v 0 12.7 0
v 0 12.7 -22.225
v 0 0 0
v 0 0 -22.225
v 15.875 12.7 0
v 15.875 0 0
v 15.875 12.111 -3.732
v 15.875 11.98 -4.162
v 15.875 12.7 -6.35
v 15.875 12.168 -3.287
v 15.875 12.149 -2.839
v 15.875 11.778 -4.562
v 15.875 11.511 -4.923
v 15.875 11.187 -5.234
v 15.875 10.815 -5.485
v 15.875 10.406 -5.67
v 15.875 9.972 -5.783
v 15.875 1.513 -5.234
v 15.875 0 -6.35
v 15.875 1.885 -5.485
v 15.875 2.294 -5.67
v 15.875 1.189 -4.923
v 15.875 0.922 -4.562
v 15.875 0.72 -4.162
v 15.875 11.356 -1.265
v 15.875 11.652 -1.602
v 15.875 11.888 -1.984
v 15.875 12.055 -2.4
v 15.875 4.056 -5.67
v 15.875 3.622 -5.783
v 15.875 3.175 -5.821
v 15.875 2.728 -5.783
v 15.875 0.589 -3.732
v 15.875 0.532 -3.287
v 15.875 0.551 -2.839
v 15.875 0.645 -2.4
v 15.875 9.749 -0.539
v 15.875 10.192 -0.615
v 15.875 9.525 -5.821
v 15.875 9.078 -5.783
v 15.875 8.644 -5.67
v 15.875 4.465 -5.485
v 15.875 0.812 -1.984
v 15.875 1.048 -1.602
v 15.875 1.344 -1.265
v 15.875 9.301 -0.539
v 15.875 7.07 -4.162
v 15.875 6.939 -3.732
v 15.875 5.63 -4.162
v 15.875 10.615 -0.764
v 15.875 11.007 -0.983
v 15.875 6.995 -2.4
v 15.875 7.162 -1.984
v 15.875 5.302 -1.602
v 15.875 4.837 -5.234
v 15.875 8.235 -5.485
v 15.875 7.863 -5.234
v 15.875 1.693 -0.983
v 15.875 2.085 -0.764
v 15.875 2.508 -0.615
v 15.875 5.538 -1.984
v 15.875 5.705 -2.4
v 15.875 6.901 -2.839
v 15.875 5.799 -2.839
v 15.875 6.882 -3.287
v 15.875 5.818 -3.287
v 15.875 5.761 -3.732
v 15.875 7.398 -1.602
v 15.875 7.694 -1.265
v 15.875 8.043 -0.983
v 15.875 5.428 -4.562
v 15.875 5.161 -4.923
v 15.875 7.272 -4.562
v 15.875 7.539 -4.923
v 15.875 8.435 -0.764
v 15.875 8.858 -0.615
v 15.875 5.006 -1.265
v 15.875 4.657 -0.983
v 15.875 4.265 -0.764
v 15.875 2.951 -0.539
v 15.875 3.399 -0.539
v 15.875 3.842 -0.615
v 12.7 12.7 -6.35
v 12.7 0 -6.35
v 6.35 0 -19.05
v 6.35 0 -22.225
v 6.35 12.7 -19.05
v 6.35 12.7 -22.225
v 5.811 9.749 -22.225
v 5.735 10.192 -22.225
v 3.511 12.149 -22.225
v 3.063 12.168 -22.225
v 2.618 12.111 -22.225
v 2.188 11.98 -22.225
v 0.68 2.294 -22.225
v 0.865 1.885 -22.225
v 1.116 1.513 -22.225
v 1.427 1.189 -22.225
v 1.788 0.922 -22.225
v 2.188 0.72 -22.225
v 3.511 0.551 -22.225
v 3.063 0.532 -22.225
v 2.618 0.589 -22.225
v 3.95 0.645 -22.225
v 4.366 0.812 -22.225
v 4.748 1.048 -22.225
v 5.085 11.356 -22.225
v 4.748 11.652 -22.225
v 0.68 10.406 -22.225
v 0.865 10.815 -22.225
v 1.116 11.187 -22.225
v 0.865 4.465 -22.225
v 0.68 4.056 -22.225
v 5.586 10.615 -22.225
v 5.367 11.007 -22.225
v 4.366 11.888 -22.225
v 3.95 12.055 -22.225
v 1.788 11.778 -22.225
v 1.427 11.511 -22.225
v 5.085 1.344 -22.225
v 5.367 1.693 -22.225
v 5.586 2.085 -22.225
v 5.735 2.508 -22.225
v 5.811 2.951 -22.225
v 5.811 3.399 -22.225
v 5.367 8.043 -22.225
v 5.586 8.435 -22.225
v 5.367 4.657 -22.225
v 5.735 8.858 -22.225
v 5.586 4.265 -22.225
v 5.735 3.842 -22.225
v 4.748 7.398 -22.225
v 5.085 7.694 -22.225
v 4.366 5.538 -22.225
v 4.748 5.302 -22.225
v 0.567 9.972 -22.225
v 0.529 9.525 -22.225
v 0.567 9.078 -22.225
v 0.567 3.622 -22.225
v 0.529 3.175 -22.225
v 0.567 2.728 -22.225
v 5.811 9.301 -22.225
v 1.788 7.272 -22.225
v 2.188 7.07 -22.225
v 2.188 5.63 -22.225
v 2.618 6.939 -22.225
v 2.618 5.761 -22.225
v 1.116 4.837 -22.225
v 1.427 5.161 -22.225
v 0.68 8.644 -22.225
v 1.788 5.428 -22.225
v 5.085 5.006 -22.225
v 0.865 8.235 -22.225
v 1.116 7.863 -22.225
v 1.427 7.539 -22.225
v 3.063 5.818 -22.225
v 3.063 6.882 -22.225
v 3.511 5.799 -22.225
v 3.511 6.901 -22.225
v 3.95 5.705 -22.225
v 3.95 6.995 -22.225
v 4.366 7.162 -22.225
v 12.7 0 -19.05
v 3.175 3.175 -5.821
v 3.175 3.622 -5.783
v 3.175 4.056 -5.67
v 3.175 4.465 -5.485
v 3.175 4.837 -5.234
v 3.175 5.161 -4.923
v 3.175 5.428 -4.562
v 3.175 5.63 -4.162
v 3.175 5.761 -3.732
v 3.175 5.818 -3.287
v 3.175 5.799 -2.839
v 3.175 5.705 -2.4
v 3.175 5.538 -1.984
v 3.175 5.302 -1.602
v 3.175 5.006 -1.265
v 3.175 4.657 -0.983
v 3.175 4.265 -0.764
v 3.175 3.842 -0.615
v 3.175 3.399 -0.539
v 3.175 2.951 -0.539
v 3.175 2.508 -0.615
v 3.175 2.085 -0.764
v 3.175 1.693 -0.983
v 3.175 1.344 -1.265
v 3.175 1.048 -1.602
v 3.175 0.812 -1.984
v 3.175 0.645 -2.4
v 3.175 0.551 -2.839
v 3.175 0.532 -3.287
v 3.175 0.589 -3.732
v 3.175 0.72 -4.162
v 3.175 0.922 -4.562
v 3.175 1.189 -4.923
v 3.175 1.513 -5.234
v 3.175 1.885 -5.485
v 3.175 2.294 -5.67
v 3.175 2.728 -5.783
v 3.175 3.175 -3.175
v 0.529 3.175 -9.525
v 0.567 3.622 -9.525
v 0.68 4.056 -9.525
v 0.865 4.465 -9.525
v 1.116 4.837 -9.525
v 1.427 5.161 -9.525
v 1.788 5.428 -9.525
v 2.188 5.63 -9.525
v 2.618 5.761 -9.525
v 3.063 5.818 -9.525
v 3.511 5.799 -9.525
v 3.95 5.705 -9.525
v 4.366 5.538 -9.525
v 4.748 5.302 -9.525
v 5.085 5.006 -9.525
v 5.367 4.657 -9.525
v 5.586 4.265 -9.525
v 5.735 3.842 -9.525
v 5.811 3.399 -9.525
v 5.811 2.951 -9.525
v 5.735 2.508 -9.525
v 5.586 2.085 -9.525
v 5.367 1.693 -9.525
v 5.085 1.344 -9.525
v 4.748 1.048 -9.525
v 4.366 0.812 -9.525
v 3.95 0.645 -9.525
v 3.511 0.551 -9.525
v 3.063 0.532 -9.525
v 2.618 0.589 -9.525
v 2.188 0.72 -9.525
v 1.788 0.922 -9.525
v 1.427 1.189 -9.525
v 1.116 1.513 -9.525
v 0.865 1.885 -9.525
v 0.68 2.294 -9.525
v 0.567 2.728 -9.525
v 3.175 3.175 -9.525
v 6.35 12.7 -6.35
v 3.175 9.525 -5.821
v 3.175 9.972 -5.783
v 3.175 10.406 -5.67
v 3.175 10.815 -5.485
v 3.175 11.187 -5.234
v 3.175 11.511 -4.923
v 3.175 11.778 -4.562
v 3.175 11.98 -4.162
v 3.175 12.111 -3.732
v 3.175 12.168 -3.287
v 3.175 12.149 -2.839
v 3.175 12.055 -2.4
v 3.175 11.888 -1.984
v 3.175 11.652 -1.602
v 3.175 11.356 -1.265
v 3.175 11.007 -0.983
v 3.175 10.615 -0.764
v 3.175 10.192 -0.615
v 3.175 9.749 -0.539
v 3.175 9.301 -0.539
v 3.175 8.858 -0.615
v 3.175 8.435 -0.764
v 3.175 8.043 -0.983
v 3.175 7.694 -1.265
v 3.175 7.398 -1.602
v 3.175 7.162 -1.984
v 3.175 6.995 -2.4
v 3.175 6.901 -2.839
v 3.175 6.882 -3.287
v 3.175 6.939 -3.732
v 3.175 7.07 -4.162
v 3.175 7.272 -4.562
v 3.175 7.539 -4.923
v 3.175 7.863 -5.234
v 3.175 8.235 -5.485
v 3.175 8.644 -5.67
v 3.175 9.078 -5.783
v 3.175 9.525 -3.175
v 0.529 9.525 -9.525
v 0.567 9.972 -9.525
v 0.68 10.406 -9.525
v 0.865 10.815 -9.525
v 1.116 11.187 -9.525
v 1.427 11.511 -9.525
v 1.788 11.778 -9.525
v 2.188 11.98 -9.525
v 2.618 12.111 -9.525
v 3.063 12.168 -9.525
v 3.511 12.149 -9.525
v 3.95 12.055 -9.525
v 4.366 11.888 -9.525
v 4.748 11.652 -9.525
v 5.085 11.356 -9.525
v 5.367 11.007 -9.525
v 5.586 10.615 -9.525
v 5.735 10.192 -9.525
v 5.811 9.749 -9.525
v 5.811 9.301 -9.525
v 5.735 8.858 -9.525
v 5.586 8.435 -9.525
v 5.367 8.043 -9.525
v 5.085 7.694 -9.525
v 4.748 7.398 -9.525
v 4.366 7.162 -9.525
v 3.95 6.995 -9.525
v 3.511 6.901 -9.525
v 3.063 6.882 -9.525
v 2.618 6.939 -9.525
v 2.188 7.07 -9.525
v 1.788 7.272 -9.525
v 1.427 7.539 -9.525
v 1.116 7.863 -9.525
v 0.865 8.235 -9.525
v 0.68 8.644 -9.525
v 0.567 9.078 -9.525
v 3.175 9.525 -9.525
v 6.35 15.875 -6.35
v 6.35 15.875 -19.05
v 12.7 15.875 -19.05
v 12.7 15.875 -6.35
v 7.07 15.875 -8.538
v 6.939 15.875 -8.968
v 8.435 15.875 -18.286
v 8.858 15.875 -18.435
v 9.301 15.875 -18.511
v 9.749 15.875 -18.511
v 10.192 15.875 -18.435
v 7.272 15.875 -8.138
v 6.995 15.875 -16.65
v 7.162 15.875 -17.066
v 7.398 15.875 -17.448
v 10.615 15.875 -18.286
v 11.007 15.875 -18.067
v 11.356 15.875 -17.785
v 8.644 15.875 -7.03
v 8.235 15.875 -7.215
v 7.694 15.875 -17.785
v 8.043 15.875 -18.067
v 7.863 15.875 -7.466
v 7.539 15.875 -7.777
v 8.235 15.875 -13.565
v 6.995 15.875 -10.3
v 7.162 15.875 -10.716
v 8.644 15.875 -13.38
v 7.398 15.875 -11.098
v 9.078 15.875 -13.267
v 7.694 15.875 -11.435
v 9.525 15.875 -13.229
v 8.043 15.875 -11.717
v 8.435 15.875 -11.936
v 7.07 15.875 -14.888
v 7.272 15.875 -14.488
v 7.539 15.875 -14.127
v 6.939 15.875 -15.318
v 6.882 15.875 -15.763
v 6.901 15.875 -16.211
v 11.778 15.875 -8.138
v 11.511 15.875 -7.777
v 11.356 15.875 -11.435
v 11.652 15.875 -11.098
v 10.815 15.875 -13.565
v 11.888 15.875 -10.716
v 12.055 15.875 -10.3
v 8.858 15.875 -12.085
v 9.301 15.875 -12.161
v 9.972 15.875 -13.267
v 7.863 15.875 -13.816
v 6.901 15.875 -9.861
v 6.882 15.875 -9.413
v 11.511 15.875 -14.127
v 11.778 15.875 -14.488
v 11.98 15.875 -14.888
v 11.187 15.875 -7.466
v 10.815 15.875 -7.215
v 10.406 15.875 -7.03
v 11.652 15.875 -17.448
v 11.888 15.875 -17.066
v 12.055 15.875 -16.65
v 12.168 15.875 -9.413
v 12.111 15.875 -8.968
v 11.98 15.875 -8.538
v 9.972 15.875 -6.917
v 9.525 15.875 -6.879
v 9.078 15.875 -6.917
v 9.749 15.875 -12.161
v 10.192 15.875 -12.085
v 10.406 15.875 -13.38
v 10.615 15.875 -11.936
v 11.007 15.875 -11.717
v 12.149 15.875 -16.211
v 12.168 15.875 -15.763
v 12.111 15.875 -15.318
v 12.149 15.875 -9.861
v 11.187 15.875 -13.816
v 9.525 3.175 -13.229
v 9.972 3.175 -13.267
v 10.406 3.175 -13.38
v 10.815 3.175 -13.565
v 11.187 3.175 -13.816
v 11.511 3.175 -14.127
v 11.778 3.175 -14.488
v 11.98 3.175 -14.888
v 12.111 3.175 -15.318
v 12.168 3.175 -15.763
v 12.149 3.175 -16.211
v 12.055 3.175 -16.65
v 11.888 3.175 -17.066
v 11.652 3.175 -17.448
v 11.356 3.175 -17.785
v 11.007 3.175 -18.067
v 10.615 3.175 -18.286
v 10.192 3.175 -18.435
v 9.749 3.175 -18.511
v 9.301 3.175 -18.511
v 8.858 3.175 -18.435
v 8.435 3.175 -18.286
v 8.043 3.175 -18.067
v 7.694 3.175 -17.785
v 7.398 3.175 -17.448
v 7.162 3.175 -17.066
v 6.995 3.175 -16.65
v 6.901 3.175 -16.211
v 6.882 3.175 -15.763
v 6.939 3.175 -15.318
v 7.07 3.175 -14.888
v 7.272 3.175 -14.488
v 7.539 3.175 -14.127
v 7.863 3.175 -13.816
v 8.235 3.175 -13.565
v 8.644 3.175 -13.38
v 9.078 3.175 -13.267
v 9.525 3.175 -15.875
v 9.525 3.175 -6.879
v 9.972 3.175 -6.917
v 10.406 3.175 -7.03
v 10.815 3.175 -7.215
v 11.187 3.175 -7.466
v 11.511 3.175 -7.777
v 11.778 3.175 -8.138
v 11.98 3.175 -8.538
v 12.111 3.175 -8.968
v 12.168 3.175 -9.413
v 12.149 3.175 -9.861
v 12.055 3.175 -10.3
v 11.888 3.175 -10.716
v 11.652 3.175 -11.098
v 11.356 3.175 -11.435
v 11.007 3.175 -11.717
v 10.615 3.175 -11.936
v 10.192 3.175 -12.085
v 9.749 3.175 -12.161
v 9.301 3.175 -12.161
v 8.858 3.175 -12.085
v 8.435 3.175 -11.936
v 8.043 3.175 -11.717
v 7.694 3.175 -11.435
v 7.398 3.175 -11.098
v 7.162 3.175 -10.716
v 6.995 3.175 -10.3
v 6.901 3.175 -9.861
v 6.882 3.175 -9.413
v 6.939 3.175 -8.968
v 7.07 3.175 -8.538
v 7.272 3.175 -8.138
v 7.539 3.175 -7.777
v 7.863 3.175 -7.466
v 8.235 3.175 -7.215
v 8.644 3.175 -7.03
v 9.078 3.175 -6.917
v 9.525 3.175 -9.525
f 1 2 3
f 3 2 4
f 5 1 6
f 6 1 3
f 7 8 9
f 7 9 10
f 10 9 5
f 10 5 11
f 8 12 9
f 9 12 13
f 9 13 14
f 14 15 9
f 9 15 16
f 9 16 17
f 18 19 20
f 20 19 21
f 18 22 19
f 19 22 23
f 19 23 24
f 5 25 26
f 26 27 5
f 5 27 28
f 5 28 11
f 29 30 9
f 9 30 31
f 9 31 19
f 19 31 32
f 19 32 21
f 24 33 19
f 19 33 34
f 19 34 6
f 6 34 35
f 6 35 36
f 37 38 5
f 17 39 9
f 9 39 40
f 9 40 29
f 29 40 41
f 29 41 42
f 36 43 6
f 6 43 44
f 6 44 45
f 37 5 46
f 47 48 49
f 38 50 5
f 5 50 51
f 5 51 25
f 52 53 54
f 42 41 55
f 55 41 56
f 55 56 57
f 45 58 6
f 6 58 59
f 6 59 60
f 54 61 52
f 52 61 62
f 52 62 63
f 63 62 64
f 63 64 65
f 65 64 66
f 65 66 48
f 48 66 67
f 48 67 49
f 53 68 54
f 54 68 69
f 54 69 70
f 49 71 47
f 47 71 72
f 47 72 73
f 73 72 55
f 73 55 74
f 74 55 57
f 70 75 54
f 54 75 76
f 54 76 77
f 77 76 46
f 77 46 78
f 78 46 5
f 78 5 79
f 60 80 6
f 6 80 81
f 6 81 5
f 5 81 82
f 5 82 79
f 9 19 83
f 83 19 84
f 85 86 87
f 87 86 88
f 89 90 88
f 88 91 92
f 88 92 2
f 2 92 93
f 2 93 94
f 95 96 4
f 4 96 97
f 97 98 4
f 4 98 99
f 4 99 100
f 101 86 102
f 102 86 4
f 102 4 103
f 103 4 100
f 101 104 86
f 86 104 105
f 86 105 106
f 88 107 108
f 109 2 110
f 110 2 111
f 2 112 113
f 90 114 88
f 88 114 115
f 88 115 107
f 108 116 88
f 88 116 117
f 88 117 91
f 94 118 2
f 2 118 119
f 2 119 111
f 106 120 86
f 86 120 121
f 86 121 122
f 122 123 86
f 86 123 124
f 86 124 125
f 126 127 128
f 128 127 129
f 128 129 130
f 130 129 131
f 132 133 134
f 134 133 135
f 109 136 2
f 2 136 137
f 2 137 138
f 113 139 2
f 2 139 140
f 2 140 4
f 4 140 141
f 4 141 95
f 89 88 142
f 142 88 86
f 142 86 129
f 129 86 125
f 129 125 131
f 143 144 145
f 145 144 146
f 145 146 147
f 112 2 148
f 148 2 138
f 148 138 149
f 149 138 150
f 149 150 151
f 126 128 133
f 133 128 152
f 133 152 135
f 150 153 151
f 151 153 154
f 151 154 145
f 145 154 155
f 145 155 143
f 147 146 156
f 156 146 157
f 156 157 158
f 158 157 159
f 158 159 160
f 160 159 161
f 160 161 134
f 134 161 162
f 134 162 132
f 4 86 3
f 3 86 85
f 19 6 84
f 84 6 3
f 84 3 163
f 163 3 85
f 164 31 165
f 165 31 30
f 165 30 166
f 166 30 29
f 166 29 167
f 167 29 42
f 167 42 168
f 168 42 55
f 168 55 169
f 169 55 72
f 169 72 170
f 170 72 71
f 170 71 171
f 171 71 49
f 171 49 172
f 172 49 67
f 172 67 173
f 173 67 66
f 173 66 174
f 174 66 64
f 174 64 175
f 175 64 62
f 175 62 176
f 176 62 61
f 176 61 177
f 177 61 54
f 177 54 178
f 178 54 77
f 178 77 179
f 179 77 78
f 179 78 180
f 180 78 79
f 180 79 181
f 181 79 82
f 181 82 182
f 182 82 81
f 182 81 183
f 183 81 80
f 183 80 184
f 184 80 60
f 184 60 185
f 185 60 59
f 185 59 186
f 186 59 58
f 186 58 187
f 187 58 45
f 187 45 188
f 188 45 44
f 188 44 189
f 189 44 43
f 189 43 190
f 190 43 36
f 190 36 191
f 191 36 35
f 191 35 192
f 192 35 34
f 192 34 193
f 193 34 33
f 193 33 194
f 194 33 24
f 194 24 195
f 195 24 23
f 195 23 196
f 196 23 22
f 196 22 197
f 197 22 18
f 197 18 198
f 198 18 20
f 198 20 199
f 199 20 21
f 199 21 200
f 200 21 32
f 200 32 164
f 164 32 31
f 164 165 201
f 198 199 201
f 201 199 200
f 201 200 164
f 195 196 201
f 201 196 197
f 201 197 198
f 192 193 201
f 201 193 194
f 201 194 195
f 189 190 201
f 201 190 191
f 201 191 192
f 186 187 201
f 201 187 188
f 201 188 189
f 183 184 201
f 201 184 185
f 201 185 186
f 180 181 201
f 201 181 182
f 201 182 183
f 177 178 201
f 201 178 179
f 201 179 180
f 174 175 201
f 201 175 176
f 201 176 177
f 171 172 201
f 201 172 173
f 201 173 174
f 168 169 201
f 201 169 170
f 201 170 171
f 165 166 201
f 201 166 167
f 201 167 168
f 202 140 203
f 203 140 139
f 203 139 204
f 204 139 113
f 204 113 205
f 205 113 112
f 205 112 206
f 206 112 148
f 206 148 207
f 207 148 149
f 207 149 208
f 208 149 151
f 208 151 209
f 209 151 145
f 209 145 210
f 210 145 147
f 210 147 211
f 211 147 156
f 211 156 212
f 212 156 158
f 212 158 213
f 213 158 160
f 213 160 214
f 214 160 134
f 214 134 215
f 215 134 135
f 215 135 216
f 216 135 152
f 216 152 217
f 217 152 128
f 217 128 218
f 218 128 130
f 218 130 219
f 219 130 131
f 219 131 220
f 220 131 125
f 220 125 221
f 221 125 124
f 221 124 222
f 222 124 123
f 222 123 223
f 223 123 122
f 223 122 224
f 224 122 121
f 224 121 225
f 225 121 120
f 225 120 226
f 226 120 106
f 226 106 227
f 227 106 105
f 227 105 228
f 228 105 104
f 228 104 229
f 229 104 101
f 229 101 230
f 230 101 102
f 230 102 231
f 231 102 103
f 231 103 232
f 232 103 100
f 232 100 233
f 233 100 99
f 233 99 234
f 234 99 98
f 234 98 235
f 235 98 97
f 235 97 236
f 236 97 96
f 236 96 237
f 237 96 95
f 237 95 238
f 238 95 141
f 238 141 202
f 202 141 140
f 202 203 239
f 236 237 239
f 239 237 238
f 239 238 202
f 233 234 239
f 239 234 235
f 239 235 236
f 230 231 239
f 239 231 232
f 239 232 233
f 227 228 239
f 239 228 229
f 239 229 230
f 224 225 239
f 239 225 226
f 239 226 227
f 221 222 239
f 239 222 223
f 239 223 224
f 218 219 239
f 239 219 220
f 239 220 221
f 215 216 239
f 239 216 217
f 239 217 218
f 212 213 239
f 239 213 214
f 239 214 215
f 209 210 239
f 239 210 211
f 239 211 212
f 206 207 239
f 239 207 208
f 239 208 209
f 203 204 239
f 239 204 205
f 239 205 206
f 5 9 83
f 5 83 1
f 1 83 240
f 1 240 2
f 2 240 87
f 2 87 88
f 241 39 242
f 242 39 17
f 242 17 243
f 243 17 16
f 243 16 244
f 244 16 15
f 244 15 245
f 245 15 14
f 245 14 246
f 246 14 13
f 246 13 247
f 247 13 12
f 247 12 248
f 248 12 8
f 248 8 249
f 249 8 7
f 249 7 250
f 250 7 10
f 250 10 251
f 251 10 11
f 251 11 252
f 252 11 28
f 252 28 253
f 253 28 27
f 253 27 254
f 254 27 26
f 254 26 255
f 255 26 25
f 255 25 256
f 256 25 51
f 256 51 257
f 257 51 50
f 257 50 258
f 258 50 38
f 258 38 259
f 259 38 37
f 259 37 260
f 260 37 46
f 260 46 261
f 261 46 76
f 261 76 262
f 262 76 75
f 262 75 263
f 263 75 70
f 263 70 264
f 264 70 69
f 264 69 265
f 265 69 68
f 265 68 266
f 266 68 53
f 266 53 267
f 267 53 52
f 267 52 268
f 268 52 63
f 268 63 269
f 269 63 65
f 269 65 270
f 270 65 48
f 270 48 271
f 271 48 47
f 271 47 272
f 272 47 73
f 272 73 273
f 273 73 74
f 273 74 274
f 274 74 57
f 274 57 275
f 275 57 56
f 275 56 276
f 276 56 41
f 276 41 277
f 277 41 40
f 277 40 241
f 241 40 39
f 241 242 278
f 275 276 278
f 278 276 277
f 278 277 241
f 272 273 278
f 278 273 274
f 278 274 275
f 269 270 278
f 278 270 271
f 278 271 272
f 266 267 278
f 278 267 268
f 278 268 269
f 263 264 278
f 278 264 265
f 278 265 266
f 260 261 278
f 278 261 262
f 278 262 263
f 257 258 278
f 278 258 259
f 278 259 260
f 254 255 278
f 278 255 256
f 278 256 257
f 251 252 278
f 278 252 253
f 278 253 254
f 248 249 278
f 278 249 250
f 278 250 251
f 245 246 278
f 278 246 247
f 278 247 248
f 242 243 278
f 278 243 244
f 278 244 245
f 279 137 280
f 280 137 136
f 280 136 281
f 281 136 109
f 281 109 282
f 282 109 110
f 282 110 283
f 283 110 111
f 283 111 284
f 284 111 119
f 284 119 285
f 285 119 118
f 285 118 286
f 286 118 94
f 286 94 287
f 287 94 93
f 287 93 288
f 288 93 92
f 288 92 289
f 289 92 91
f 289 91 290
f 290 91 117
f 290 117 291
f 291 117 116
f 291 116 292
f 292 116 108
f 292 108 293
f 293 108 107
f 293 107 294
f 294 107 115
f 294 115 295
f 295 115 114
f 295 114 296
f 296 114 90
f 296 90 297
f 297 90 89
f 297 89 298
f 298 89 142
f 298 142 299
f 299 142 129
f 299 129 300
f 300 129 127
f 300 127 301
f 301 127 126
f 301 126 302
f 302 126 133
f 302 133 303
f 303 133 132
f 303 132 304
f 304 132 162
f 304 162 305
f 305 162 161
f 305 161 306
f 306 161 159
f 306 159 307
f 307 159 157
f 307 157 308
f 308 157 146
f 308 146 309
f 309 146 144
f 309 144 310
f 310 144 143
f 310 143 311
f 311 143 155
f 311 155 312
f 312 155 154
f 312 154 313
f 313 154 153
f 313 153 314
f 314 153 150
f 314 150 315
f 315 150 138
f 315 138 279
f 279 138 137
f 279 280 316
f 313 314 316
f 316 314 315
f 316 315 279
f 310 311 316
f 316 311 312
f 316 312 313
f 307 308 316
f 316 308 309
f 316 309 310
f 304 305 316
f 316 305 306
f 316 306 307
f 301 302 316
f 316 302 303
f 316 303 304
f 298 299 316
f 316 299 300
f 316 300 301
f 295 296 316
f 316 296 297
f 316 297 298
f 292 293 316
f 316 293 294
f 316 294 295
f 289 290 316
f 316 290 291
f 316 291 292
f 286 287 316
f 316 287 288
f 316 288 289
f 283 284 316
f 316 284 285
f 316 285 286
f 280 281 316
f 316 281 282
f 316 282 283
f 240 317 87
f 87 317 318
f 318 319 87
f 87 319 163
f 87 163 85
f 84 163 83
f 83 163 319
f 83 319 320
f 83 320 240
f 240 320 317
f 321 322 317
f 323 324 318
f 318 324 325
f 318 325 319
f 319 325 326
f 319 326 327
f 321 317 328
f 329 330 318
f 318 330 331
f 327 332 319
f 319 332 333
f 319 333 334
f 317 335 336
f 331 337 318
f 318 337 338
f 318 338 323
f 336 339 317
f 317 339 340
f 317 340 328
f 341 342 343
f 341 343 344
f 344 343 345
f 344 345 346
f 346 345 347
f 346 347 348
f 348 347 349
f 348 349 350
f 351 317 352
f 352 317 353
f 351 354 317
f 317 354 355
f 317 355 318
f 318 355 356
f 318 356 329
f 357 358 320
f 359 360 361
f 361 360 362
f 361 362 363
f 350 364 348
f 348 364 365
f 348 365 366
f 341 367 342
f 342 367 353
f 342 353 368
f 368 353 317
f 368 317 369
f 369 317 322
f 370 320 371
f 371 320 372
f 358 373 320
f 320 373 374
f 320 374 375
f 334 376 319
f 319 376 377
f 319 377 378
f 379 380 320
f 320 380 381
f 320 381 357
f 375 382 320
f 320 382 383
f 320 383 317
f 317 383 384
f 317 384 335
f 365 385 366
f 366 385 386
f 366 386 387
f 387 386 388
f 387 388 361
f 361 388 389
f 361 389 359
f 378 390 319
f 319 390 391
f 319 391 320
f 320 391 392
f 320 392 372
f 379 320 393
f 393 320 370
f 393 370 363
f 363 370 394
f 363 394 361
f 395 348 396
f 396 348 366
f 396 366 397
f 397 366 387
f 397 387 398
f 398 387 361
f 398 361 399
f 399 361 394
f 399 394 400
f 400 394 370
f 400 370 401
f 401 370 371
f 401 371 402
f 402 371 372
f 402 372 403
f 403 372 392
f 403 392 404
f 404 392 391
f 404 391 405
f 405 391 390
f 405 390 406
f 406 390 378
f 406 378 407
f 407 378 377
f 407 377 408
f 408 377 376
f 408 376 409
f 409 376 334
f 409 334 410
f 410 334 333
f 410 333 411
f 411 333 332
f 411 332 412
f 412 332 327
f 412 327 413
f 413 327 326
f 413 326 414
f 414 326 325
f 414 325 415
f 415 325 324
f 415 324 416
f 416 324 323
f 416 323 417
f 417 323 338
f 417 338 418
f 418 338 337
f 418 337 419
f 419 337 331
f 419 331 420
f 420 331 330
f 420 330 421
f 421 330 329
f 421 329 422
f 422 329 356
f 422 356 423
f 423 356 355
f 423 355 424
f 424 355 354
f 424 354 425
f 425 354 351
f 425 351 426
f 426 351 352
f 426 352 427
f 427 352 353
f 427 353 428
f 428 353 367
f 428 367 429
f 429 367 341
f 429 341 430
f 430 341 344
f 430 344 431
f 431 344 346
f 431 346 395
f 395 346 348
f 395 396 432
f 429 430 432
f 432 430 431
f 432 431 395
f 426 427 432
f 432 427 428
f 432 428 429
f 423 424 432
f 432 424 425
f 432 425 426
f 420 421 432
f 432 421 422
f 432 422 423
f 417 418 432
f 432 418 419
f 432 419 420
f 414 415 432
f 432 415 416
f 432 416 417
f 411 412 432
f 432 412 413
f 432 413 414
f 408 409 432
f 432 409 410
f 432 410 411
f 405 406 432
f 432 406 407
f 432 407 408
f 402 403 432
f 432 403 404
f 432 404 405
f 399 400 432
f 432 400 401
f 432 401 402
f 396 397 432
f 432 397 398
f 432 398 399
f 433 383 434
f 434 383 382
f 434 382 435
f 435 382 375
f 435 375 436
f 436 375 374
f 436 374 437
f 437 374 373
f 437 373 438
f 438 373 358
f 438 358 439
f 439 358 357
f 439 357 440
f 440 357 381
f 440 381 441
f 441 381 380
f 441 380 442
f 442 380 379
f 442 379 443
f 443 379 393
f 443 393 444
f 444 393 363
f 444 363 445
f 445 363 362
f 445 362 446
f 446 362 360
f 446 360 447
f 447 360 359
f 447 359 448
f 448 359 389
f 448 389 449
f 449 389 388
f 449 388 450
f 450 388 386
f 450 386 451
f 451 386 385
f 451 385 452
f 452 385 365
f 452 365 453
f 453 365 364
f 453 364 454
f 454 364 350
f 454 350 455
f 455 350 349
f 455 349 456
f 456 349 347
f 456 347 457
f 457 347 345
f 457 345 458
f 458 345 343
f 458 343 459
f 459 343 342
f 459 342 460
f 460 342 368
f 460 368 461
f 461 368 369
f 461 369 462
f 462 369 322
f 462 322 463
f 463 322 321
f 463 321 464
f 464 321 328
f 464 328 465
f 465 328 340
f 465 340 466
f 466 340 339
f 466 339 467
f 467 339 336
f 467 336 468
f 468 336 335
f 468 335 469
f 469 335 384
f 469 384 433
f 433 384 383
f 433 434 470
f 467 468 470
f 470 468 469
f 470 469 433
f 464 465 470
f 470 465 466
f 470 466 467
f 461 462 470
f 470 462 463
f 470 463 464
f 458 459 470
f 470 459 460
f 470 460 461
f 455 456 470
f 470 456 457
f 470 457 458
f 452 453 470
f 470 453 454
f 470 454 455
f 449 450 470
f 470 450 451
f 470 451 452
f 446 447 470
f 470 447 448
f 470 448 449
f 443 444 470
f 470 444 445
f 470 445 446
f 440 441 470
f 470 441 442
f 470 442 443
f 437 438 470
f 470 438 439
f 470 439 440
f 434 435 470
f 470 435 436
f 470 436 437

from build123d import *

# Parameters (mm, degrees)
SKETCH1_W                = 6.35
SKETCH1_H                = 15.875
SKETCH1_W_2              = 15.875
SKETCH1_H_2              = 6.35
BOSS_EXTRUDE1_DEPTH      = 6.35
SKETCH5_R                = 2.645833291
CUT_EXTRUDE1_DEPTH       = 12.7
SKETCH6_R                = 2.645833333
CUT_EXTRUDE2_DEPTH       = 12.7
SKETCH10_W               = 6.35
SKETCH10_H               = 15.875
BOSS_EXTRUDE5_DEPTH      = 6.35
SKETCH11_R               = 2.645833333
CUT_EXTRUDE5_DEPTH       = 12.7
SKETCH12_R               = 2.645833333
CUT_EXTRUDE6_DEPTH       = 12.7
SKETCH13_W               = 6.35
SKETCH13_H               = 12.7
BOSS_EXTRUDE6_DEPTH      = 3.175
BOSS_EXTRUDE6_DEPTH_BACK = 12.7
SKETCH14_R               = 2.645833333
CUT_EXTRUDE7_DEPTH       = 12.7


with BuildPart() as part:
    # Sketch1 → Boss-Extrude1 (new body)
    with BuildSketch(Plane(origin=(0, 0, 0), x_dir=(1, 0, 0), z_dir=(0, 1, 0))):
        with Locations((3.175, 14.2875)):
            Rectangle(SKETCH1_W, SKETCH1_H)
        with Locations((7.9375, 3.175)):
            Rectangle(SKETCH1_W_2, SKETCH1_H_2)
    extrude(amount=BOSS_EXTRUDE1_DEPTH)

    # Sketch5 → Cut-Extrude1 (cut)
    with BuildSketch(Plane(origin=(15.875, 0, 0), x_dir=(0, 0, -1), z_dir=(1, 0, 0))):
        with Locations((3.175, 3.175)):
            Circle(SKETCH5_R)
    extrude(amount=-CUT_EXTRUDE1_DEPTH, mode=Mode.SUBTRACT)

    # Sketch6 → Cut-Extrude2 (cut)
    with BuildSketch(Plane(origin=(0, 0, -22.225), x_dir=(-1, 0, 0), z_dir=(0, 0, -1))):
        with Locations((-3.175, 3.175)):
            Circle(SKETCH6_R)
    extrude(amount=-CUT_EXTRUDE2_DEPTH, mode=Mode.SUBTRACT)

    # Sketch10 → Boss-Extrude5 (add)
    with BuildSketch(Plane(origin=(0, 6.35, 0), x_dir=(1, 0, 0), z_dir=(0, 1, 0))):
        with Locations((3.175, 14.2875)):
            Rectangle(SKETCH10_W, SKETCH10_H)
        Polygon((0, 6.35), (0, 0), (15.875, 0), (15.875, 6.35), (6.35, 6.35), align=None)
    extrude(amount=BOSS_EXTRUDE5_DEPTH)

    # Sketch11 → Cut-Extrude5 (cut)
    with BuildSketch(Plane(origin=(15.875, 0, 0), x_dir=(0, 0, -1), z_dir=(1, 0, 0))):
        with Locations((3.175, 9.525)):
            Circle(SKETCH11_R)
    extrude(amount=-CUT_EXTRUDE5_DEPTH, mode=Mode.SUBTRACT)

    # Sketch12 → Cut-Extrude6 (cut)
    with BuildSketch(Plane(origin=(0, 0, -22.225), x_dir=(-1, 0, 0), z_dir=(0, 0, -1))):
        with Locations((-3.175, 9.525)):
            Circle(SKETCH12_R)
    extrude(amount=-CUT_EXTRUDE6_DEPTH, mode=Mode.SUBTRACT)

    # Sketch13 → Boss-Extrude6 (add, two sides)
    with BuildSketch(Plane(origin=(0, 12.7, 0), x_dir=(1, 0, 0), z_dir=(0, 1, 0))) as boss_extrude6_sk:
        with Locations((9.525, 12.7)):
            Rectangle(SKETCH13_W, SKETCH13_H)
    extrude(amount=BOSS_EXTRUDE6_DEPTH)
    extrude(boss_extrude6_sk.sketch, amount=-BOSS_EXTRUDE6_DEPTH_BACK)

    # Sketch14 → Cut-Extrude7 (cut)
    with BuildSketch(Plane(origin=(0, 15.875, 0), x_dir=(1, 0, 0), z_dir=(0, 1, 0))):
        with Locations((9.525, 9.525)):
            Circle(SKETCH14_R)
        with Locations((9.525, 15.875)):
            Circle(SKETCH14_R)
    extrude(amount=-CUT_EXTRUDE7_DEPTH, mode=Mode.SUBTRACT)


solid = part.part
